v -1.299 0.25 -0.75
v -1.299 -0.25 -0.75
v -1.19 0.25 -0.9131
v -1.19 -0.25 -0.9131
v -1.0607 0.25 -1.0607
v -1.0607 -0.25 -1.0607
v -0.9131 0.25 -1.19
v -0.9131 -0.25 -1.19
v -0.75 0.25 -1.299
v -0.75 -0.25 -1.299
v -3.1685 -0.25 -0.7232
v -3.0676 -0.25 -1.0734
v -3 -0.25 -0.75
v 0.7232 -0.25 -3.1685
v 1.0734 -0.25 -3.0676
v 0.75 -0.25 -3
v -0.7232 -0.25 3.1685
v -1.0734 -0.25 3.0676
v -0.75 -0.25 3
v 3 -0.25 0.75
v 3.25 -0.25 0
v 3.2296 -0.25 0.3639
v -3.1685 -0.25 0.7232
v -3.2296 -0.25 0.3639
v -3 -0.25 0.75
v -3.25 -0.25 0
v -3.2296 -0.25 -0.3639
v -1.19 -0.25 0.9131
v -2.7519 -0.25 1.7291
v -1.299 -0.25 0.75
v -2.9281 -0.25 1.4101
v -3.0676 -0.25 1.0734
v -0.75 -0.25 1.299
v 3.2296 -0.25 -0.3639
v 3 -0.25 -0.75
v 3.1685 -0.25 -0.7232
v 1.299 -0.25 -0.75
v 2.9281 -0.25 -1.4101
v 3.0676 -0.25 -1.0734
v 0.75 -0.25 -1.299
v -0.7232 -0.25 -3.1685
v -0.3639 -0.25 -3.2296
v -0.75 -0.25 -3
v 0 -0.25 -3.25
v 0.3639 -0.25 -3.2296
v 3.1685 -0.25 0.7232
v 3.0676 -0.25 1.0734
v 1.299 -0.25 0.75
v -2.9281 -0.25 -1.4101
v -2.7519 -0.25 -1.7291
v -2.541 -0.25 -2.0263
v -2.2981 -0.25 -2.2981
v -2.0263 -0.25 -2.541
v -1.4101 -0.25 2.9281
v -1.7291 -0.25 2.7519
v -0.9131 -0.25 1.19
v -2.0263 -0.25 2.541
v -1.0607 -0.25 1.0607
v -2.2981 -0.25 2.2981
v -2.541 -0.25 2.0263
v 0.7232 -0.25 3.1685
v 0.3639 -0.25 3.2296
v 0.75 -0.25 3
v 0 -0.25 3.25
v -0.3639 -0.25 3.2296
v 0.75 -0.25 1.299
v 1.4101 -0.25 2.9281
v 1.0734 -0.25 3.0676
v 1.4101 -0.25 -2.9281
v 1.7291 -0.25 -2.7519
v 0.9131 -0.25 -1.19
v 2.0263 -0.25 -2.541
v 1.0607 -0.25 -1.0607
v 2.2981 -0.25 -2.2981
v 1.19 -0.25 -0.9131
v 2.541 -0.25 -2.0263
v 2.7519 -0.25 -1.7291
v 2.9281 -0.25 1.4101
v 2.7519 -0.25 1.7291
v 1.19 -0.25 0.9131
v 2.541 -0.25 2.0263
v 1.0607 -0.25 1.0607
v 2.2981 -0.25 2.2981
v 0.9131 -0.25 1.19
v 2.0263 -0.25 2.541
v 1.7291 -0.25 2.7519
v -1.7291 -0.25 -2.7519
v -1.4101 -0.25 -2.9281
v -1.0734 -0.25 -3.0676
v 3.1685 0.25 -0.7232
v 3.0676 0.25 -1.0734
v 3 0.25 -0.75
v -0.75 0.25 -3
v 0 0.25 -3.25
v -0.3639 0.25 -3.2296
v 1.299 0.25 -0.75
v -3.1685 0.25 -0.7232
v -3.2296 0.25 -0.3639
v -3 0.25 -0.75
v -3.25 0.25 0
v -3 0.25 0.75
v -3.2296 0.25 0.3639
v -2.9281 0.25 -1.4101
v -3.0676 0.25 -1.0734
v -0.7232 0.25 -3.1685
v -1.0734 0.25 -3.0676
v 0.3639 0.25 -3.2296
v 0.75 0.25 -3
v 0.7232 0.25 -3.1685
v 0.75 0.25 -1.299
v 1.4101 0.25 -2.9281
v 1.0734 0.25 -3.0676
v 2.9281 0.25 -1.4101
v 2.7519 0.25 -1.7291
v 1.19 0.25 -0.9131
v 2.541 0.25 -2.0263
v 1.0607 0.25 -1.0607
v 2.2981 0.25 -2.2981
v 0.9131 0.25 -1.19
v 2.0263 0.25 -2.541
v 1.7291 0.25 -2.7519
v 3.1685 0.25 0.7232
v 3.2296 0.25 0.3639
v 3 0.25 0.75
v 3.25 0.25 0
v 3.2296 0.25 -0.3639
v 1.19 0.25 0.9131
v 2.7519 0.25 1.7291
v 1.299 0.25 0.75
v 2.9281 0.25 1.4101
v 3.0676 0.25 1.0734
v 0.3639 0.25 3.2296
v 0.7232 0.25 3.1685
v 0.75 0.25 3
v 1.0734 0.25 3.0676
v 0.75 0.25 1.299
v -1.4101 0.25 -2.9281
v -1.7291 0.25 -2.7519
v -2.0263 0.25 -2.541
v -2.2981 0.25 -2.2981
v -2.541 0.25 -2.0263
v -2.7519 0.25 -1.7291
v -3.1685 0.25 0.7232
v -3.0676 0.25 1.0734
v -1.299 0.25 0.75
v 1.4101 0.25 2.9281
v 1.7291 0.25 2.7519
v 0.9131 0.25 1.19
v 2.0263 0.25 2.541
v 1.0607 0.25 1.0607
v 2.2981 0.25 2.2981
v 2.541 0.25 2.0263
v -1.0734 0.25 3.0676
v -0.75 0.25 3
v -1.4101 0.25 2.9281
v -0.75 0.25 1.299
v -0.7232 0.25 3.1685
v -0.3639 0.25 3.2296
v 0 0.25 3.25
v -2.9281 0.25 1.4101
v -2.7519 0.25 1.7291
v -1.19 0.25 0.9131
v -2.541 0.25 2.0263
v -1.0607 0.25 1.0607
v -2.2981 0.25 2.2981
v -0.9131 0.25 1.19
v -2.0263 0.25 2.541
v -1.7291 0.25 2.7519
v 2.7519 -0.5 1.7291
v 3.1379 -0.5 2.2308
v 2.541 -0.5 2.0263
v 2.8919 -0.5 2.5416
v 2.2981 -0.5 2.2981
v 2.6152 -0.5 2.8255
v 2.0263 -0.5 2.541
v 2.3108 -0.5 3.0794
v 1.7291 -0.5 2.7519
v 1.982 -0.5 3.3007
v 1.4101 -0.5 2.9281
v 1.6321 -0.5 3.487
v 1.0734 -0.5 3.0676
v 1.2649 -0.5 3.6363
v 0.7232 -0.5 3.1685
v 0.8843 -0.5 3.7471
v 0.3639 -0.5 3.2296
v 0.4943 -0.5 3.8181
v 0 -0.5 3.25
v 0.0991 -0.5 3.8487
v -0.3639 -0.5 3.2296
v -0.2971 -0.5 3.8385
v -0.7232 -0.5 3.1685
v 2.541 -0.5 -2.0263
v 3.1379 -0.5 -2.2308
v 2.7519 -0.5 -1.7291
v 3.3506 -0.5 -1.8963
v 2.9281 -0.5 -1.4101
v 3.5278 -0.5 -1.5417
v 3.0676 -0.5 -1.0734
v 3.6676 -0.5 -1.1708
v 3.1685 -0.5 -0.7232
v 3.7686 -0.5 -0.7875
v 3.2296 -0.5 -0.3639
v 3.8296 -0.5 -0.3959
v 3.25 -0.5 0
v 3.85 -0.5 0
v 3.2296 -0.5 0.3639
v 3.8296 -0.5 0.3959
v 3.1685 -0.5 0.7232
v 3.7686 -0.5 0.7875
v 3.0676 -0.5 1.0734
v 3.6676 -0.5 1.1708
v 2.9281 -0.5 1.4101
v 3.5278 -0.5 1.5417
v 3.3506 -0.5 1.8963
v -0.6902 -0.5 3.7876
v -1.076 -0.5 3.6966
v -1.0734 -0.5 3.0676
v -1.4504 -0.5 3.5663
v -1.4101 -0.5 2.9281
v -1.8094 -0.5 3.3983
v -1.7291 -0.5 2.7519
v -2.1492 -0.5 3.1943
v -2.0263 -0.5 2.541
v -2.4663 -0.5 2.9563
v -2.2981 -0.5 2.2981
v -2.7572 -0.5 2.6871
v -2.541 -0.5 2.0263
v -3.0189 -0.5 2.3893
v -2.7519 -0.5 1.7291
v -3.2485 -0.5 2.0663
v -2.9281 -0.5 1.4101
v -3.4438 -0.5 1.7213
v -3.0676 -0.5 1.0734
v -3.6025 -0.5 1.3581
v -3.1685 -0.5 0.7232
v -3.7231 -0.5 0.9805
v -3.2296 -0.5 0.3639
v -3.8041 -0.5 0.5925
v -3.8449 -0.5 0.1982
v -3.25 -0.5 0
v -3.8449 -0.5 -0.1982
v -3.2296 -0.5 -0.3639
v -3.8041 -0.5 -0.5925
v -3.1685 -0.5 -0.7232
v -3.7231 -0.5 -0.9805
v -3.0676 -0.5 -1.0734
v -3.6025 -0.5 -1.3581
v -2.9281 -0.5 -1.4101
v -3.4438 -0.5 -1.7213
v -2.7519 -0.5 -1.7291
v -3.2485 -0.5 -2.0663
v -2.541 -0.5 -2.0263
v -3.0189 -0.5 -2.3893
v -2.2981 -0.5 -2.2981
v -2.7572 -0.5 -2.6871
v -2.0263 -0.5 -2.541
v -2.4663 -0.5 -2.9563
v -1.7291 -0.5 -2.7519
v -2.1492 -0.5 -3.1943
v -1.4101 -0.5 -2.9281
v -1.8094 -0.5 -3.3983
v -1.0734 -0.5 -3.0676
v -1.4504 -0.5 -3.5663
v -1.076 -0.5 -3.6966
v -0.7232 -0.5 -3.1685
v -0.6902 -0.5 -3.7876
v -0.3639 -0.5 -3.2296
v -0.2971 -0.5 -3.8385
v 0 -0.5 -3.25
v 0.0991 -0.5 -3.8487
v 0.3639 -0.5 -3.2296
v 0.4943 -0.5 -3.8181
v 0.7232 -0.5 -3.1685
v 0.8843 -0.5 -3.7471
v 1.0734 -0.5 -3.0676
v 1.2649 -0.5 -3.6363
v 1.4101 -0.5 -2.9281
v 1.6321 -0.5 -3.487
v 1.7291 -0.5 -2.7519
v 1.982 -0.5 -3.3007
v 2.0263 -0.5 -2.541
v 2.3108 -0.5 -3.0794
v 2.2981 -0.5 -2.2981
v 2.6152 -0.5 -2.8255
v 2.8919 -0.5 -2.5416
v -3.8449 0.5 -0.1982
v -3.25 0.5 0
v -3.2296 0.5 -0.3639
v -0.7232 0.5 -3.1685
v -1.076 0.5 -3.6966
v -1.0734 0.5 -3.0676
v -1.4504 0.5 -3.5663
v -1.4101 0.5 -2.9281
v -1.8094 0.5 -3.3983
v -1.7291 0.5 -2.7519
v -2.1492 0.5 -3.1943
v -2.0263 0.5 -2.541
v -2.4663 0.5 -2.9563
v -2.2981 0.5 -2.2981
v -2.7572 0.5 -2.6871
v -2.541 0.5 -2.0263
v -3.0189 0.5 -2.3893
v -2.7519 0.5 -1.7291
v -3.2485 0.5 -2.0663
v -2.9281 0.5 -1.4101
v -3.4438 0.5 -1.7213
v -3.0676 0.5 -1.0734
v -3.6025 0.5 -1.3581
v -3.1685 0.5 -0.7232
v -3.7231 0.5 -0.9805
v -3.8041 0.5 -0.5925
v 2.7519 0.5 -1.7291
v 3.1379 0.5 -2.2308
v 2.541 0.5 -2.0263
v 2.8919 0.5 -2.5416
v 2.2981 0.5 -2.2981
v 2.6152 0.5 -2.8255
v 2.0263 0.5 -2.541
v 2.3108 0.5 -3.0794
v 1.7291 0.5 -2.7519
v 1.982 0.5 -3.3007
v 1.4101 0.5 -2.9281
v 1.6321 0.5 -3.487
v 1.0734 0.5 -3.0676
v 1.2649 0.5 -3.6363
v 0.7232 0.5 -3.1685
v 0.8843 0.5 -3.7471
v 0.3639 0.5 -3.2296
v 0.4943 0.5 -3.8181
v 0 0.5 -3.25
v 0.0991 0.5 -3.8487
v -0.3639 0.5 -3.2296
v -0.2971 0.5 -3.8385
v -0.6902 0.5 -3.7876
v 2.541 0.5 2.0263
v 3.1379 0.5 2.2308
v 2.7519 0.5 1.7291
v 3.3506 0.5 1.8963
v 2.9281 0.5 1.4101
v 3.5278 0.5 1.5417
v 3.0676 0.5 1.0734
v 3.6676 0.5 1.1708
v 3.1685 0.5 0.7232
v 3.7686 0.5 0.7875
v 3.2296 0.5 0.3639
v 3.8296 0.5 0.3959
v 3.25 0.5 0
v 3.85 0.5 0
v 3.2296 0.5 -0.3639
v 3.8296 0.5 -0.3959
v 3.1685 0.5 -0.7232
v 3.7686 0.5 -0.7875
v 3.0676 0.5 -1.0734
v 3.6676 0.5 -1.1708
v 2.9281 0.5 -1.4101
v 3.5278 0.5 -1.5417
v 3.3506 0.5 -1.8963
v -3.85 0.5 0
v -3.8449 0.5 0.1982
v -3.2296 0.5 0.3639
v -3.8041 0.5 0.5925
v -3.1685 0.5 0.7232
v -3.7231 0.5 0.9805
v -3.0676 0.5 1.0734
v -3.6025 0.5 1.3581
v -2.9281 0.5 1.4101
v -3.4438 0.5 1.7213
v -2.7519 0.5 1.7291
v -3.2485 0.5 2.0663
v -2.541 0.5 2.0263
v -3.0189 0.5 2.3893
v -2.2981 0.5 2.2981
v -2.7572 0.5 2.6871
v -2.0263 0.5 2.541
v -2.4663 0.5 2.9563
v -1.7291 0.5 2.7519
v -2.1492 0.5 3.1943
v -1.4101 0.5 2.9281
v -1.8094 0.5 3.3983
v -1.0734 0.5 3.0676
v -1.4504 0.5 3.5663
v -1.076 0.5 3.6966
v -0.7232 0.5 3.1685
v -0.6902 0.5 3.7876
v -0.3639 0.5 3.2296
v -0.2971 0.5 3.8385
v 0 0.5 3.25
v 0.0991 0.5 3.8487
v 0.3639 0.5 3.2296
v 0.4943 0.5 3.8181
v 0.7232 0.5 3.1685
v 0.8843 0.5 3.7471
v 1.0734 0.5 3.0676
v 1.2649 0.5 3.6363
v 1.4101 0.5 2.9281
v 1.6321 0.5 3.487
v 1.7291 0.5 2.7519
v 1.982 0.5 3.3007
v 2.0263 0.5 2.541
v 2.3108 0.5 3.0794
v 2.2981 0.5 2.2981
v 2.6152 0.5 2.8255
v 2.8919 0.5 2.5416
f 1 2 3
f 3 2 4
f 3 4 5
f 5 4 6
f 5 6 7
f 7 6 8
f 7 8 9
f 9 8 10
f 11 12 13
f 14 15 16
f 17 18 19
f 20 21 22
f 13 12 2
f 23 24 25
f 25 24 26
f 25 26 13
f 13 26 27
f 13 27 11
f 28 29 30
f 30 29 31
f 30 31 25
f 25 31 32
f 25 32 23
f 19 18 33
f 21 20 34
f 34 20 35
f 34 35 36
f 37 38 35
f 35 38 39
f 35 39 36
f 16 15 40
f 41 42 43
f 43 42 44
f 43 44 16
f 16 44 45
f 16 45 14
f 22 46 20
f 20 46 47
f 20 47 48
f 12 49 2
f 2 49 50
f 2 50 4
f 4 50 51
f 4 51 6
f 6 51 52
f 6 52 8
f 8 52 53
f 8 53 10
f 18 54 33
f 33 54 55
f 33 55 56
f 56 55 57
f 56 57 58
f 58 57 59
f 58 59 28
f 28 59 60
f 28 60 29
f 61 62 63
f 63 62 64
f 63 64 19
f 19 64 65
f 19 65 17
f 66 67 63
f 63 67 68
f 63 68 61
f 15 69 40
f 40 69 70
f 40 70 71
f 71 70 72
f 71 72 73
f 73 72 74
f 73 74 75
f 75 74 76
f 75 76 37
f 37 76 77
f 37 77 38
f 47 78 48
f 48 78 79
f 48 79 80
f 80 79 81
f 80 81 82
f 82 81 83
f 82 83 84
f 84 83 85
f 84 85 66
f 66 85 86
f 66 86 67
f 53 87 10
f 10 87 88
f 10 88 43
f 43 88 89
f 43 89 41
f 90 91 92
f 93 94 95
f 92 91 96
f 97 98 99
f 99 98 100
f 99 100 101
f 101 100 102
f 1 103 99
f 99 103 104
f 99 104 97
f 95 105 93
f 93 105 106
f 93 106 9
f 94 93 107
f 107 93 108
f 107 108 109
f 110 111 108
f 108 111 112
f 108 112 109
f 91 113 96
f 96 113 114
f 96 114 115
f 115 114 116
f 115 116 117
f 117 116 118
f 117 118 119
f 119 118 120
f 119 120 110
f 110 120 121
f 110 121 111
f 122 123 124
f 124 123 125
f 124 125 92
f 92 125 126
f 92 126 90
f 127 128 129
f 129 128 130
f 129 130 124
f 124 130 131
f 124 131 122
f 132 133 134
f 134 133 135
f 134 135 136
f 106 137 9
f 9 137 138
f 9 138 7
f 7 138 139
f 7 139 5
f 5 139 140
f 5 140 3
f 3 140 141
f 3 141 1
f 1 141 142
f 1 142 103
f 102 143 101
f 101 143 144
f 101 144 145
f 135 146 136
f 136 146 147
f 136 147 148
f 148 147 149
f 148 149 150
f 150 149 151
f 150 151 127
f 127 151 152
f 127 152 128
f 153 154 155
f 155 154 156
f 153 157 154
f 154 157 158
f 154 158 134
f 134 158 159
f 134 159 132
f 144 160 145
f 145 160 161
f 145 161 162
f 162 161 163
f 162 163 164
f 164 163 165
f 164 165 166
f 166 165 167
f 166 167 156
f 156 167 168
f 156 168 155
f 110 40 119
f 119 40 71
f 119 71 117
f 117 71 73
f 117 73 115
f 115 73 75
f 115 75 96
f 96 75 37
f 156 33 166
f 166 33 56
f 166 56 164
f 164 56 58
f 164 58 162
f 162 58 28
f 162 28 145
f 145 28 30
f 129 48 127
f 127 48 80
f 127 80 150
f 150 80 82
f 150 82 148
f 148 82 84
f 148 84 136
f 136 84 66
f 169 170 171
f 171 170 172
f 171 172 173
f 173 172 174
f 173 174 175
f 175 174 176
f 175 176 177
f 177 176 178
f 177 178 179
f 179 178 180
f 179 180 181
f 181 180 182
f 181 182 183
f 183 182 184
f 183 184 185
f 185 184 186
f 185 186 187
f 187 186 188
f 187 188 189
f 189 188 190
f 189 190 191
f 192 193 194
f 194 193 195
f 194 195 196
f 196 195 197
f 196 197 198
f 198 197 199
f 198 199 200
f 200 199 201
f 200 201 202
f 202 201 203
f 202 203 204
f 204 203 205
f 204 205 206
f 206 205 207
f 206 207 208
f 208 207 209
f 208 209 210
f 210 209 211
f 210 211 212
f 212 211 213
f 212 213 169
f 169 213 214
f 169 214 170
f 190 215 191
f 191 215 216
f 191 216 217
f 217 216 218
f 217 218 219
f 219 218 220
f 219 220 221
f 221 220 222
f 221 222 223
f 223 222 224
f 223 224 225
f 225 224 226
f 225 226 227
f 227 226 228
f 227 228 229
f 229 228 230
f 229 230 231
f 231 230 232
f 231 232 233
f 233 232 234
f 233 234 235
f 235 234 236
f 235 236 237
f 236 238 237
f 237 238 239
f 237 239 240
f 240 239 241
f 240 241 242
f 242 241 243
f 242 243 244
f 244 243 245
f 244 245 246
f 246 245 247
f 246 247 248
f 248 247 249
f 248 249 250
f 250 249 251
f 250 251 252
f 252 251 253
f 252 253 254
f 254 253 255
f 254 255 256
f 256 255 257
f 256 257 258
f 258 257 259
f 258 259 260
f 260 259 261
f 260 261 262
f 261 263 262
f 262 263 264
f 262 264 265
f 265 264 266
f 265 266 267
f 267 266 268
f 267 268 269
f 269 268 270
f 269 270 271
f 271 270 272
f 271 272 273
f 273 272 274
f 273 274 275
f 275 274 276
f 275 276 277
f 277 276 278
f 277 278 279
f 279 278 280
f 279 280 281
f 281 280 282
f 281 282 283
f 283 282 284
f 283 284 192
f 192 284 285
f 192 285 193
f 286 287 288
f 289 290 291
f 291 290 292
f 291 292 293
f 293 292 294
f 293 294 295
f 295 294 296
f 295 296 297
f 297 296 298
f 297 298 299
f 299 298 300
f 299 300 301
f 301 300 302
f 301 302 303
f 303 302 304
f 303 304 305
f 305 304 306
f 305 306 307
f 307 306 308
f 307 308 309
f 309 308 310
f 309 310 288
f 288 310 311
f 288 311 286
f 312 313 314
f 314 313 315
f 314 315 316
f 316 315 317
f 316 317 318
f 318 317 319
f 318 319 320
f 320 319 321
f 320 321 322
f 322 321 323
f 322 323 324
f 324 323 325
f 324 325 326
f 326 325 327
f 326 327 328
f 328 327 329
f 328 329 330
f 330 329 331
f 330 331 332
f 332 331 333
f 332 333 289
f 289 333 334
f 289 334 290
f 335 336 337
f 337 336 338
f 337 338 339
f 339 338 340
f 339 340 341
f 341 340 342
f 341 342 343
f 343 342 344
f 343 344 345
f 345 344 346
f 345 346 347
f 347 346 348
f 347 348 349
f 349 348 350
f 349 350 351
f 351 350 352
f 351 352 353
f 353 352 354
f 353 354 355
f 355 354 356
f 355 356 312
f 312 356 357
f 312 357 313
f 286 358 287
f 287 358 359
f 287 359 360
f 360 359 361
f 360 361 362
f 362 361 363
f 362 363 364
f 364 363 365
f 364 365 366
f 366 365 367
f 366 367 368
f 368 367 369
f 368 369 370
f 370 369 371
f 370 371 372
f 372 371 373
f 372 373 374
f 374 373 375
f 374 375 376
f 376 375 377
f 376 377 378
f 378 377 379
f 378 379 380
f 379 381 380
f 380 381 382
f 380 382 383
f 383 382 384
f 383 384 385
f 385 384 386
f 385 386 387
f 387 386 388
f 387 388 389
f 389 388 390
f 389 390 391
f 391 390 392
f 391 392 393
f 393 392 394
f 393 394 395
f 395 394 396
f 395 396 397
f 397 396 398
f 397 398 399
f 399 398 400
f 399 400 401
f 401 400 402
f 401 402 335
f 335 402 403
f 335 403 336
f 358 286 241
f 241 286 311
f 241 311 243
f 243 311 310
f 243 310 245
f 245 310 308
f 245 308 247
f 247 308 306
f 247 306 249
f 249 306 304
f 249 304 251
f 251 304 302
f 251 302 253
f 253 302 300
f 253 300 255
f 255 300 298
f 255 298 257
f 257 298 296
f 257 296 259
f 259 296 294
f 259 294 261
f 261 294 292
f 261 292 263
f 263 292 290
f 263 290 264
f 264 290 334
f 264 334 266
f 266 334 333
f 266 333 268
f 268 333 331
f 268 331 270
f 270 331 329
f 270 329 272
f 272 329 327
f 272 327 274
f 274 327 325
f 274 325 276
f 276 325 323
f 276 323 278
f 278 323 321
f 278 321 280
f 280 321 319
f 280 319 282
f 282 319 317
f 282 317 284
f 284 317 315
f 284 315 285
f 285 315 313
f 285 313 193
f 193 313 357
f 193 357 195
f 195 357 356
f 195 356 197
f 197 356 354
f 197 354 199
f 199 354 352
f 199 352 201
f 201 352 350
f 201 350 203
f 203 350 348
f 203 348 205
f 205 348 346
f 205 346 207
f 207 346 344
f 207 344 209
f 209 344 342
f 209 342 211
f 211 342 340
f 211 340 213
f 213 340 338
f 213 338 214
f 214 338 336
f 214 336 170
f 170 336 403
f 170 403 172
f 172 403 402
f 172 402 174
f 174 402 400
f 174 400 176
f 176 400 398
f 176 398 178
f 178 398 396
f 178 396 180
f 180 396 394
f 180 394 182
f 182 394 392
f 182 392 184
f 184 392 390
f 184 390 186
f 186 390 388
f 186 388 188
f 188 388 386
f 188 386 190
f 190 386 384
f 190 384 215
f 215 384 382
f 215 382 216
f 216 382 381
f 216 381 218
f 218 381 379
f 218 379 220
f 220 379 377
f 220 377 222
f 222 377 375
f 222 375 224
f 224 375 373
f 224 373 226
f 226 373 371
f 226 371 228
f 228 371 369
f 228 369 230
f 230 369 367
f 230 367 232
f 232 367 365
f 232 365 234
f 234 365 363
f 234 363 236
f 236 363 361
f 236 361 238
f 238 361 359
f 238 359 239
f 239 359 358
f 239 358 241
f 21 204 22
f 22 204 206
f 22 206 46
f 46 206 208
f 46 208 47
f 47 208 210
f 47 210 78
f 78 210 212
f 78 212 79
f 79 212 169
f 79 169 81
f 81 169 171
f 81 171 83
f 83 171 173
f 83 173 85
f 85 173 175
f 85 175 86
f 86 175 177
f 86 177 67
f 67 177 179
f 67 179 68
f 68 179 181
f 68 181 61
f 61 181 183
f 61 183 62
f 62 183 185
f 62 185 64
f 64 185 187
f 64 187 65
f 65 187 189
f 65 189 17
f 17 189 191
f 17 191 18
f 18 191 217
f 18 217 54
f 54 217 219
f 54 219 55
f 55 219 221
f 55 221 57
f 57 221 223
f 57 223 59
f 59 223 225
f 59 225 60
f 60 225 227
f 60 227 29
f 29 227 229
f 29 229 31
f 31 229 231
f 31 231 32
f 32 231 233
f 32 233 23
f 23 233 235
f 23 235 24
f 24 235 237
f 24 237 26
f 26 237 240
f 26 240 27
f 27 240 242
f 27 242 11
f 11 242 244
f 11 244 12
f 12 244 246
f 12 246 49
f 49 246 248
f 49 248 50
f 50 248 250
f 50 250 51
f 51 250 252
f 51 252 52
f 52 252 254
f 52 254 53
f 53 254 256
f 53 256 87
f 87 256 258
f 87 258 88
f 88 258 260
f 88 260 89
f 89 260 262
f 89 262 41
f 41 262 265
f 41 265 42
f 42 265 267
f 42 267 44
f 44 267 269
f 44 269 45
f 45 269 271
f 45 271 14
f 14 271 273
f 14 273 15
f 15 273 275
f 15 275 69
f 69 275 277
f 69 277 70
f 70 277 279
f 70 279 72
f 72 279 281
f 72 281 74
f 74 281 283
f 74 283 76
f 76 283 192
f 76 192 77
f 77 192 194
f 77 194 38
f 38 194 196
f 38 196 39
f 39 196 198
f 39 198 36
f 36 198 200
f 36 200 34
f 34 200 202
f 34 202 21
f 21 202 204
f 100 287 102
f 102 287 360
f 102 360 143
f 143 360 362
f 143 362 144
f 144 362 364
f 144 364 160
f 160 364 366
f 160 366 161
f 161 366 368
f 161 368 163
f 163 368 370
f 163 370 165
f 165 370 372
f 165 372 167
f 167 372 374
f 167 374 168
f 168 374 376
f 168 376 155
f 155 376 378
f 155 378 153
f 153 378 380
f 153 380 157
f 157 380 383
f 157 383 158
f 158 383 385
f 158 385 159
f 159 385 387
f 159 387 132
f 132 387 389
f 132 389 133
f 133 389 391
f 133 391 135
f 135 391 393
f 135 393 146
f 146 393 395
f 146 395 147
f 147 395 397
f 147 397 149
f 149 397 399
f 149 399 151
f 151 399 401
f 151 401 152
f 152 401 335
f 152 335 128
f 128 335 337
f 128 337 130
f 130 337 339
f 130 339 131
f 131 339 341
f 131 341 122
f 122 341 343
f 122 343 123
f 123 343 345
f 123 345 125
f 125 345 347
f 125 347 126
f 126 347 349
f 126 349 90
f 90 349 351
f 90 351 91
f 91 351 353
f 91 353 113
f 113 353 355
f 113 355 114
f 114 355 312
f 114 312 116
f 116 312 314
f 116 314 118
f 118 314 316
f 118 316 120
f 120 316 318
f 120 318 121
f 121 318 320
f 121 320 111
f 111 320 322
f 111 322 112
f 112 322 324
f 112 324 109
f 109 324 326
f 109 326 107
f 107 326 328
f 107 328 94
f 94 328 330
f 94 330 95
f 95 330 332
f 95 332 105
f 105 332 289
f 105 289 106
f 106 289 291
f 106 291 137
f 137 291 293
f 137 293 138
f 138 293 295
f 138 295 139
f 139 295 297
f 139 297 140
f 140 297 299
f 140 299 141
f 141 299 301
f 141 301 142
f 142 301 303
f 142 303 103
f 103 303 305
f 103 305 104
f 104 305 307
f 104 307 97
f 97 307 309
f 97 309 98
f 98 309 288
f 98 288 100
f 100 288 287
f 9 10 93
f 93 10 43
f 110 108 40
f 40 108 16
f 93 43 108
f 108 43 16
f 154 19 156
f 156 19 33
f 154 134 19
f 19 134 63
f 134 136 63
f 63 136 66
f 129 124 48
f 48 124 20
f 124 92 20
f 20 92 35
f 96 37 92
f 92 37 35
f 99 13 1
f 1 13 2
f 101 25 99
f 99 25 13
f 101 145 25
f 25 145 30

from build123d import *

# Parameters (mm, degrees)
BASE_W             = 2.5
BASE_H             = 1
SKETCH1_R          = 4
SKETCH1_R_2        = 3.85
CUT_EXTRUDE1_DEPTH = 10
SKETCH6_R          = 3.25
CUT_EXTRUDE5_DEPTH = 0.25
CUT_EXTRUDE6_START = -0.25
SKETCH7_R          = 3.25
CUT_EXTRUDE6_DEPTH = 0.25
SKETCH4_W          = 6
SKETCH4_H          = 1.5
SKETCH4_W_2        = 1.5
SKETCH4_H_2        = 6
CUT_EXTRUDE4_DEPTH = 10


with BuildPart() as part:
    # base → Revolution (revolve)
    with BuildSketch(Plane.XY):
        with Locations((2.75, 0)):
            Rectangle(BASE_W, BASE_H)
    revolve(axis=Axis((0, -0.5, 0), (0, 1, 0)))

    # Sketch1 → Cut-Extrude1 (cut)
    with BuildSketch(Plane(origin=(0, -0.5, 0), x_dir=(-1, 0, 0), z_dir=(0, -1, 0))):
        Circle(SKETCH1_R)
        with Locations(Location((0, 0, 0), (0, 0, 180))):
            Circle(SKETCH1_R_2, mode=Mode.SUBTRACT)
    extrude(amount=-CUT_EXTRUDE1_DEPTH, mode=Mode.SUBTRACT)

    # Sketch6 → Cut-Extrude5 (cut)
    with BuildSketch(Plane(origin=(0, -0.5, 0), x_dir=(-1, 0, 0), z_dir=(0, -1, 0))):
        with Locations(Location((0, 0, 0), (0, 0, 180))):
            Circle(SKETCH6_R)
    extrude(amount=-CUT_EXTRUDE5_DEPTH, mode=Mode.SUBTRACT)

    # Sketch7 → Cut-Extrude6 (cut)
    with BuildSketch(Plane(origin=(0, 0.5, 0), x_dir=(1, 0, 0), z_dir=(0, 1, 0)).offset(CUT_EXTRUDE6_START)):
        Circle(SKETCH7_R)
    extrude(amount=CUT_EXTRUDE6_DEPTH, mode=Mode.SUBTRACT)

    # Sketch4 → Cut-Extrude4 (cut)
    with BuildSketch(Plane(origin=(0, -0.5, 0), x_dir=(-1, 0, 0), z_dir=(0, -1, 0))):
        Rectangle(SKETCH4_W, SKETCH4_H)
        Rectangle(SKETCH4_W_2, SKETCH4_H_2)
    extrude(amount=-CUT_EXTRUDE4_DEPTH, mode=Mode.SUBTRACT)


solid = part.part
